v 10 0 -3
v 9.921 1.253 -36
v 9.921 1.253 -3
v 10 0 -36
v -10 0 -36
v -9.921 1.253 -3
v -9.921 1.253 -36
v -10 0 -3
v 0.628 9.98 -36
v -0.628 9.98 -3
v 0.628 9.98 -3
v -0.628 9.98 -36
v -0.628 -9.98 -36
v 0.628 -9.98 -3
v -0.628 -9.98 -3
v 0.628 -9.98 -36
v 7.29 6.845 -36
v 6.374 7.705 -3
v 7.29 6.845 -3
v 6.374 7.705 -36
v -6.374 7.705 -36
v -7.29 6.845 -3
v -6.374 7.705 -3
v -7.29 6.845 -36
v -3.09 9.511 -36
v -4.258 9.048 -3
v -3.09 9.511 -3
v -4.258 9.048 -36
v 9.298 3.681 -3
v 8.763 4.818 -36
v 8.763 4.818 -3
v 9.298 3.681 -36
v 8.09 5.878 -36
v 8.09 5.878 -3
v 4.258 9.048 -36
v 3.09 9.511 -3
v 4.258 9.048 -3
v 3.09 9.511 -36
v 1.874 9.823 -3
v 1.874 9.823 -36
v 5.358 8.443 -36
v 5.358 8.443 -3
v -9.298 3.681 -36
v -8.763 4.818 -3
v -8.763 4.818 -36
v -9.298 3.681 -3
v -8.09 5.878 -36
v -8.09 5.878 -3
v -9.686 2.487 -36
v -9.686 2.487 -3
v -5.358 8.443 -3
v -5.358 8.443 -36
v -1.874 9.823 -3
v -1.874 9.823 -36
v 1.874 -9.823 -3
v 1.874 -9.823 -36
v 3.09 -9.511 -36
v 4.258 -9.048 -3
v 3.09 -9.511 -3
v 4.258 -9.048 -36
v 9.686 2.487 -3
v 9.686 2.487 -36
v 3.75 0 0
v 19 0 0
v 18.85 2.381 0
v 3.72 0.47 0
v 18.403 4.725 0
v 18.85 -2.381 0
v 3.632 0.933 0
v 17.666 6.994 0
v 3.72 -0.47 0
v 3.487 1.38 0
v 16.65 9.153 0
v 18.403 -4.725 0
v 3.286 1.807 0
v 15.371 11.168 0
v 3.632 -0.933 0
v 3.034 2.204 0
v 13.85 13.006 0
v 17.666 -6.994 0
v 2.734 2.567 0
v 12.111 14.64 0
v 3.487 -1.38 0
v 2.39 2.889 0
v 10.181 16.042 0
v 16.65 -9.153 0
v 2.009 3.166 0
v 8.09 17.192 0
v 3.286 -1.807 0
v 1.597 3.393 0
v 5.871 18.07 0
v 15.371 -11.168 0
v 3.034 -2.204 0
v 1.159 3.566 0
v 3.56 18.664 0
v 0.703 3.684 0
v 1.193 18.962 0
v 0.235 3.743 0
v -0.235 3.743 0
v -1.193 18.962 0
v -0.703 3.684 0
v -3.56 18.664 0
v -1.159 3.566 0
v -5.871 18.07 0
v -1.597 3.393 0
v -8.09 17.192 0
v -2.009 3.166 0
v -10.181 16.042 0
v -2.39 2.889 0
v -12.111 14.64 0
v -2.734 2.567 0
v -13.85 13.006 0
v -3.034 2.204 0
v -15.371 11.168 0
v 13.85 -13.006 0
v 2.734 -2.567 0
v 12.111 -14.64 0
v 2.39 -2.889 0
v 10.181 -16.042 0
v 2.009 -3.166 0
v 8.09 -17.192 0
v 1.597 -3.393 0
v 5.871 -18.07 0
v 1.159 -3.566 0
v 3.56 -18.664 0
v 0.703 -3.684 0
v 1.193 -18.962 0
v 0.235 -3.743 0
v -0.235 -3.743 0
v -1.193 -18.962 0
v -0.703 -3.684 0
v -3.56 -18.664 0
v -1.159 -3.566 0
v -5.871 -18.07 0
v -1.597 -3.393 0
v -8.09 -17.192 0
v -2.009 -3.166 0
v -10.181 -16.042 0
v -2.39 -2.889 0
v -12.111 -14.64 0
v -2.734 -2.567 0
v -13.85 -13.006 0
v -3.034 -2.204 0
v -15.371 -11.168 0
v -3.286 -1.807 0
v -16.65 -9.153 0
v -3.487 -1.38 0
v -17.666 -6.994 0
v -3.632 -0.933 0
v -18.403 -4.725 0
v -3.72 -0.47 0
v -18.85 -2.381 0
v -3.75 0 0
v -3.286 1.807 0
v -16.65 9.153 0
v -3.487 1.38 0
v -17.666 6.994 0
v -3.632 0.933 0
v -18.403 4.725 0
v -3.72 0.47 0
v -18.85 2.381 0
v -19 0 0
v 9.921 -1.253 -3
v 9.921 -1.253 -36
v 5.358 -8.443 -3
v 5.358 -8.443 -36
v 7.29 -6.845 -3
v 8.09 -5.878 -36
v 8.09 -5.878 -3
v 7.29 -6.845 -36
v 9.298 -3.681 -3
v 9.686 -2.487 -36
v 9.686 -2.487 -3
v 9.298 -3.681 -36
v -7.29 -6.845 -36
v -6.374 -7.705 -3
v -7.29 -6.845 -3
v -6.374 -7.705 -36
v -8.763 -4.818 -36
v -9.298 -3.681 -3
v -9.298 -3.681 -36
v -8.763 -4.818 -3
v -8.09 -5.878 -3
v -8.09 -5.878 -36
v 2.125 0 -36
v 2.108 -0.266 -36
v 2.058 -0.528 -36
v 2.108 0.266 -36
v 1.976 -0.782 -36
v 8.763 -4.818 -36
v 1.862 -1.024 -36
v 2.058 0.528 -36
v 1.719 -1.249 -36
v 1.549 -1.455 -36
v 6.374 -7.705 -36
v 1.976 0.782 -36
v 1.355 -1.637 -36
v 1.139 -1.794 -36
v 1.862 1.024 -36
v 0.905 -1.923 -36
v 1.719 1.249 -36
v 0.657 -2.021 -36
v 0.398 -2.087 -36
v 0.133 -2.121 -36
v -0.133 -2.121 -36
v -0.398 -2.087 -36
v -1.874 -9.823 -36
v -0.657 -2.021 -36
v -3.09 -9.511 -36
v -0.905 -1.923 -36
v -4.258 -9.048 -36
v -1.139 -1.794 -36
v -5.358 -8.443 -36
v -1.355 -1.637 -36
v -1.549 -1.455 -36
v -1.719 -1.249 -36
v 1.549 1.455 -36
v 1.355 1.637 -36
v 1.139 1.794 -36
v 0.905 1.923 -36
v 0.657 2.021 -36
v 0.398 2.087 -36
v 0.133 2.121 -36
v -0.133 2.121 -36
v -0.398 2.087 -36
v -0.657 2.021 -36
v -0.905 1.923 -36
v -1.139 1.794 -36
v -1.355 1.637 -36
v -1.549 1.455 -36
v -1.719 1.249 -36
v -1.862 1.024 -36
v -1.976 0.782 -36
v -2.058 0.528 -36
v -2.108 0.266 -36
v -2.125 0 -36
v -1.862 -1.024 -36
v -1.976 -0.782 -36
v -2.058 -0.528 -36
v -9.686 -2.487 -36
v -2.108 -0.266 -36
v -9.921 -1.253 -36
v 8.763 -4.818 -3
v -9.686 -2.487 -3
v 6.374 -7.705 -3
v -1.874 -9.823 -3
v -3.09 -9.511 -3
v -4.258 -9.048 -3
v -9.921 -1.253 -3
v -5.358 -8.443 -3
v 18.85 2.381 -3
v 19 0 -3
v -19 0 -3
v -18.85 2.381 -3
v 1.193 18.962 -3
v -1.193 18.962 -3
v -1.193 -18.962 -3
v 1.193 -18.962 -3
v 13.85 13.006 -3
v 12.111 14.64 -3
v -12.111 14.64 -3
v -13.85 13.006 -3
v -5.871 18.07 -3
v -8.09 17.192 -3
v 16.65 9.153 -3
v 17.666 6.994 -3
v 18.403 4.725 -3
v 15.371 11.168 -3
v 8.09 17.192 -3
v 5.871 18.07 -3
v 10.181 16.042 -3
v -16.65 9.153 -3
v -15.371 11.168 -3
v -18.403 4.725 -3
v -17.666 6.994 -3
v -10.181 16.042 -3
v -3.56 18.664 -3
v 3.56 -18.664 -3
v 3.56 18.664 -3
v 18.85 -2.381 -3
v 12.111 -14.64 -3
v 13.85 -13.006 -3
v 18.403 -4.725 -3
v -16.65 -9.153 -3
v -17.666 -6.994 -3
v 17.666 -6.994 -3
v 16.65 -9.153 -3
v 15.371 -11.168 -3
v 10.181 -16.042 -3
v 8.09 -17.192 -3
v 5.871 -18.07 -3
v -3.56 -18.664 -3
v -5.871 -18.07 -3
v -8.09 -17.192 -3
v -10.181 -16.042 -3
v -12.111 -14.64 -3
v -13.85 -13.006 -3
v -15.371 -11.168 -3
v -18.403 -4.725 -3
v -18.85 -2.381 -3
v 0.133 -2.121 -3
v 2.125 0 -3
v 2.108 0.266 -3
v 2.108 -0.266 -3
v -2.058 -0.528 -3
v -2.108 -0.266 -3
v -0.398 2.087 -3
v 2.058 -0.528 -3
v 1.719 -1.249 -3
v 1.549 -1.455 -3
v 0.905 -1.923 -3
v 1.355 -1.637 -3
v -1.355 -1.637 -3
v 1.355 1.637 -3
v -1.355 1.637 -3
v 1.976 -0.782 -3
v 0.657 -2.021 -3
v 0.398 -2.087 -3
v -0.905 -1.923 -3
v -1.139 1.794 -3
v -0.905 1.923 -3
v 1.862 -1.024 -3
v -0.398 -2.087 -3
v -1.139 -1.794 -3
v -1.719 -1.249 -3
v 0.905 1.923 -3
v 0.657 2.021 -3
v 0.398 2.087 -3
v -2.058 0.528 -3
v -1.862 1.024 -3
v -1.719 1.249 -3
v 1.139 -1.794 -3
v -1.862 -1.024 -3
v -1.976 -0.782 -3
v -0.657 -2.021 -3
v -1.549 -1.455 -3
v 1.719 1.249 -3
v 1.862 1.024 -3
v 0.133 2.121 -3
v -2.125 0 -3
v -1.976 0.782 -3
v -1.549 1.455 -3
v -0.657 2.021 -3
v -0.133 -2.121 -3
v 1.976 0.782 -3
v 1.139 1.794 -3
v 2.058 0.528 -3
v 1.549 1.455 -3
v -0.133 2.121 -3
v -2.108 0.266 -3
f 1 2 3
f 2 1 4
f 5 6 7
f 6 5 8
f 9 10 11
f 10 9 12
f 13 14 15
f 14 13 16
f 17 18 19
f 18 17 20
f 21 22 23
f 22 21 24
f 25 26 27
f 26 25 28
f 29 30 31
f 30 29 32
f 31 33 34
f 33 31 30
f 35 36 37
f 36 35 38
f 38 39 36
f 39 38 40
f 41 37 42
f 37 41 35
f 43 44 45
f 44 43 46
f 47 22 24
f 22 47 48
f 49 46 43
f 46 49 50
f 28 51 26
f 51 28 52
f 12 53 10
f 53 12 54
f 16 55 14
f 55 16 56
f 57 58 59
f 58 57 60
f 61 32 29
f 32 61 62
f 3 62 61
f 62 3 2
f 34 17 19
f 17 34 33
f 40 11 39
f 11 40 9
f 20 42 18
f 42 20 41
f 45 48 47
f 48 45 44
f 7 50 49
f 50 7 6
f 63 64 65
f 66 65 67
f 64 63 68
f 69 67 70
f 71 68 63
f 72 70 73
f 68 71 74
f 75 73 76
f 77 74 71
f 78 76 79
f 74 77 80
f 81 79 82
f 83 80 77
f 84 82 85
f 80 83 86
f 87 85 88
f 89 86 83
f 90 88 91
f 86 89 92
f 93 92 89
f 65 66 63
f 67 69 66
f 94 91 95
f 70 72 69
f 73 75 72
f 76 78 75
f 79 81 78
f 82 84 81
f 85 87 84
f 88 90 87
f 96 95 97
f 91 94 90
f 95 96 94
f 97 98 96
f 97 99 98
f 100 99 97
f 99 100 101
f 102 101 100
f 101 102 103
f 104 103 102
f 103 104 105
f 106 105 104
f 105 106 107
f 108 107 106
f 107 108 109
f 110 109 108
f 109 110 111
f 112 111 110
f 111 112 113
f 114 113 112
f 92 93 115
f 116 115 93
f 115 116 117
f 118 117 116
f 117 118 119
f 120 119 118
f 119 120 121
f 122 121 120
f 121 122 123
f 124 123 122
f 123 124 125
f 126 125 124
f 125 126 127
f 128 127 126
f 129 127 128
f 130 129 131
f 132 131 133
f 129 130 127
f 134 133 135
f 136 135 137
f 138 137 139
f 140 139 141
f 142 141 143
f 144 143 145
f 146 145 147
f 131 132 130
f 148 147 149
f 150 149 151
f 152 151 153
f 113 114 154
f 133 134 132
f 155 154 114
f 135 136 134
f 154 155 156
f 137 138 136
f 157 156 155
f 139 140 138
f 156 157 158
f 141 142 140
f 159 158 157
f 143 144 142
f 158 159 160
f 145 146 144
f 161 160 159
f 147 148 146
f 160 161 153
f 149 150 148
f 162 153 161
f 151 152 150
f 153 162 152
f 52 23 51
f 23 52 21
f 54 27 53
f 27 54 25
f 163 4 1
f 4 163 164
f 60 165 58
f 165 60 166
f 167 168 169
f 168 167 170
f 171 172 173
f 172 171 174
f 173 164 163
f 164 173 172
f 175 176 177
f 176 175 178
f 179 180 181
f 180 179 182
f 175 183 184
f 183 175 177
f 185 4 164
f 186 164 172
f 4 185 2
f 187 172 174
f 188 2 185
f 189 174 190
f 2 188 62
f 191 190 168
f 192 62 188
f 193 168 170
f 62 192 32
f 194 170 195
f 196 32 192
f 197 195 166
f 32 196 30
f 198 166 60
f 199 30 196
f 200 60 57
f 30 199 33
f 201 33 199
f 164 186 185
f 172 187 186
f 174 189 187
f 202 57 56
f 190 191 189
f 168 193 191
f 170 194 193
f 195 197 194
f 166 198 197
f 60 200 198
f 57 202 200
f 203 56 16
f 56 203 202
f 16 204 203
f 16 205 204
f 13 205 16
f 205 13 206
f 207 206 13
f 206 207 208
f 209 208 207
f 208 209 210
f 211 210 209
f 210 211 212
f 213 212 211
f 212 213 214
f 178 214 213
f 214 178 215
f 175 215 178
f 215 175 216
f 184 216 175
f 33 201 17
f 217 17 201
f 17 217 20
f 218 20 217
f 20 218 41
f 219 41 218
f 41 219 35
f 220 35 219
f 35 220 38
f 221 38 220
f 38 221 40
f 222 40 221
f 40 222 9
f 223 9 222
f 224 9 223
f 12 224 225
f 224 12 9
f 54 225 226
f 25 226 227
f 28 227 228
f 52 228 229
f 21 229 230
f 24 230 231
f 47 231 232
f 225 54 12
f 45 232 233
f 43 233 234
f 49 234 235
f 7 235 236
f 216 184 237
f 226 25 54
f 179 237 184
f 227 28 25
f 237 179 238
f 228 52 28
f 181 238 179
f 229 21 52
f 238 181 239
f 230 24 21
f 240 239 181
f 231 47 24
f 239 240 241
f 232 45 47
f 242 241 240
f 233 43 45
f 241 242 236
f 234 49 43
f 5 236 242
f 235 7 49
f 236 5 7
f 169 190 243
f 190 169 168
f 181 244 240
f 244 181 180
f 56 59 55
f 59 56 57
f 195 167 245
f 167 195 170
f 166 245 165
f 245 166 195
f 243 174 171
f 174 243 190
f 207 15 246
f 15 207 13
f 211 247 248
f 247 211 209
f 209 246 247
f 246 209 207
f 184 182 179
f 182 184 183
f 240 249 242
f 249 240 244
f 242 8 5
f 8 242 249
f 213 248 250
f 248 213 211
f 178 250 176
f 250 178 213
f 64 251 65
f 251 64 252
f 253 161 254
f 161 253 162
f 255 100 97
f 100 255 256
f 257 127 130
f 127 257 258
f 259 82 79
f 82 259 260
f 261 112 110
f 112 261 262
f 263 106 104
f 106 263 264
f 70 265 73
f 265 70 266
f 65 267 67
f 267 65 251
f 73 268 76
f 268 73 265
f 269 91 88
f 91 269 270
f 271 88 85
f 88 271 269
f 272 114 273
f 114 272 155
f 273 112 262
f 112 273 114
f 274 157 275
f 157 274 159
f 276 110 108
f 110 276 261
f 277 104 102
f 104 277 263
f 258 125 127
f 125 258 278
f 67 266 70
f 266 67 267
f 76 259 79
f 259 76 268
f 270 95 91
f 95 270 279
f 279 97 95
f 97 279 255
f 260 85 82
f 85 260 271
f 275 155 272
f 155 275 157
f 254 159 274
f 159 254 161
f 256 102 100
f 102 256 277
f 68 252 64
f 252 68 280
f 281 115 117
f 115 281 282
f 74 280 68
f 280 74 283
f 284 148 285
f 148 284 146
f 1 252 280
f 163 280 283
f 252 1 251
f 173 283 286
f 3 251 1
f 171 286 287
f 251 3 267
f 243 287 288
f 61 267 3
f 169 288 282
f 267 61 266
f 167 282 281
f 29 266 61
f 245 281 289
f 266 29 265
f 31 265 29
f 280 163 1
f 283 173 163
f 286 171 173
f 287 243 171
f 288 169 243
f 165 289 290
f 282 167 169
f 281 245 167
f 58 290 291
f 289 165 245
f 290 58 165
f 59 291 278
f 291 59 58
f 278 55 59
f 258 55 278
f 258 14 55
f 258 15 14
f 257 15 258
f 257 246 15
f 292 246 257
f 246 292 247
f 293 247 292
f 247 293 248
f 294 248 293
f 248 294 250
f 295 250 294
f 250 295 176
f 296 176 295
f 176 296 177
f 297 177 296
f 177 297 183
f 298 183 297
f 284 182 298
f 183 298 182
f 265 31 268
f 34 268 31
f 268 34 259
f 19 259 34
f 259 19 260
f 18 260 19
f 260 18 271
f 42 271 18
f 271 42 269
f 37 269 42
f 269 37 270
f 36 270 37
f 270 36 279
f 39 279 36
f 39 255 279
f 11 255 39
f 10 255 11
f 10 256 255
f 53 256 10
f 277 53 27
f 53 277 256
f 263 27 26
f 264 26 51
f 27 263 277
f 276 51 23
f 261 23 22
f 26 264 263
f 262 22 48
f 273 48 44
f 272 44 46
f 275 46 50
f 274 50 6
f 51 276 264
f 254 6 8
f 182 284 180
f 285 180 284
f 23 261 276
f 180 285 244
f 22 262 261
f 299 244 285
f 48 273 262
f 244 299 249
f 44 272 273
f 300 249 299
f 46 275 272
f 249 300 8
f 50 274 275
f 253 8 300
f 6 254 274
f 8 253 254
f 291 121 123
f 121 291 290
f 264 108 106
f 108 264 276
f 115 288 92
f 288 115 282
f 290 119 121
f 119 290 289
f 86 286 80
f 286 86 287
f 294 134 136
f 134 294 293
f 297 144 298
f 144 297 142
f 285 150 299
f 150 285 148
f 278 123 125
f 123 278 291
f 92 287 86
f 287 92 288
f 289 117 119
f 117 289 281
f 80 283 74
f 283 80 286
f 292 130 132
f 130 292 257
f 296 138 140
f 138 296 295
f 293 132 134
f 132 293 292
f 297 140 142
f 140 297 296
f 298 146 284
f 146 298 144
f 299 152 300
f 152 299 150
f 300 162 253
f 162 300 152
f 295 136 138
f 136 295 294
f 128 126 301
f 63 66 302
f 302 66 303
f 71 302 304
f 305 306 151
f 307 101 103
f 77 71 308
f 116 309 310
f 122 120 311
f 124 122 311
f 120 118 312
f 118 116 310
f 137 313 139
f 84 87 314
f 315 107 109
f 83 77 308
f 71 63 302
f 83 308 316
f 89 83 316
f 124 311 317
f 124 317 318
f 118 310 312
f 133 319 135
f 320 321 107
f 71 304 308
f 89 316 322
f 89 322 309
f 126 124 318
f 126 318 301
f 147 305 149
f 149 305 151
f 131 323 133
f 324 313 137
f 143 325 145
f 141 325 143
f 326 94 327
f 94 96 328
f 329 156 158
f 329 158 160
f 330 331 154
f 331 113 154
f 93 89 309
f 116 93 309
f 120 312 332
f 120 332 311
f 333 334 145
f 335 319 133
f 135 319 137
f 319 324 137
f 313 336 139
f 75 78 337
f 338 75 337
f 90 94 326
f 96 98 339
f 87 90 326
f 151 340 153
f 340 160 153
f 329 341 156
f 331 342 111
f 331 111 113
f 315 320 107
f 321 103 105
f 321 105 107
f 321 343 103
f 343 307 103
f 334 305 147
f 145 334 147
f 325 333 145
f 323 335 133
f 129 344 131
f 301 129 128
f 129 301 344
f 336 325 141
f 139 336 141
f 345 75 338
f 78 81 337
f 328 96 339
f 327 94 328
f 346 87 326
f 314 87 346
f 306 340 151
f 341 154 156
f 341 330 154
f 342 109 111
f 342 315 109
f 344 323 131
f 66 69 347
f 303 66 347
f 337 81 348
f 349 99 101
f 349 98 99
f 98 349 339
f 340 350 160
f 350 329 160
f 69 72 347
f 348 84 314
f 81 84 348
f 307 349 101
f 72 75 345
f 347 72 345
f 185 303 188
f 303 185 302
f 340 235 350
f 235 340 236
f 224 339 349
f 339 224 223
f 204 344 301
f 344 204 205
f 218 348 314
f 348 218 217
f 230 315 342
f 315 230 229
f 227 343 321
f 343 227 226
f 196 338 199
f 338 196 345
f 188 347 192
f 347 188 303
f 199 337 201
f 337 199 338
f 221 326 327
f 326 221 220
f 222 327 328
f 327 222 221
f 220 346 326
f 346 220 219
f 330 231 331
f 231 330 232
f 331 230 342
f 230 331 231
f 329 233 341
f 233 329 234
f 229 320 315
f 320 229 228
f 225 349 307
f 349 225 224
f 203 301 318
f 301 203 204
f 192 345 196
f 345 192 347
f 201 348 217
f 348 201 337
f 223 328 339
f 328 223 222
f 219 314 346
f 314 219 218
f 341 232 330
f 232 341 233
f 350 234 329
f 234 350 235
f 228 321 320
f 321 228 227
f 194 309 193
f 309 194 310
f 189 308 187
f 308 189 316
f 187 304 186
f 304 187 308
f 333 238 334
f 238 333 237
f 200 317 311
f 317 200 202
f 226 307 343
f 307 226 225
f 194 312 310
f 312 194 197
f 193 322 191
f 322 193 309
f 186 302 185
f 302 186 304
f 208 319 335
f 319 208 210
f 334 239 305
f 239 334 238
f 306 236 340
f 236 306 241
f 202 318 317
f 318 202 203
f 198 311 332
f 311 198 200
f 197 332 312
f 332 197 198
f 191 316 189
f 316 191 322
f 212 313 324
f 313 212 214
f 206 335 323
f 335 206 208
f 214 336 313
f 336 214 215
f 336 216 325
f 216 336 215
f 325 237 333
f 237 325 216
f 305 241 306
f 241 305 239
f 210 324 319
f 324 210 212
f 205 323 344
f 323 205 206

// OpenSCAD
$fn = 50;


difference() {
	union() {
		translate(v = [0, 0, -36.0000000000]) {
			cylinder(h = 36, r = 10.0000000000);
		}
		translate(v = [0, 0, -3.0000000000]) {
			cylinder(h = 3, r = 19.0000000000);
		}
	}
	union() {
		translate(v = [0, 0, 0]) {
			rotate(a = [0, 0, 0]) {
				difference() {
					union() {
						#translate(v = [0, 0, -36.0000000000]) {
							cylinder(h = 36, r = 2.0000000000);
						}
						#translate(v = [0, 0, -3]) {
							cylinder(h = 3, r1 = 2.1250000000, r2 = 3.7500000000);
						}
						#translate(v = [0, 0, -36.0000000000]) {
							cylinder(h = 36, r = 2.1250000000);
						}
						#translate(v = [0, 0, -36.0000000000]) {
							cylinder(h = 36, r = 2.0000000000);
						}
					}
					union();
				}
			}
		}
	}
}
